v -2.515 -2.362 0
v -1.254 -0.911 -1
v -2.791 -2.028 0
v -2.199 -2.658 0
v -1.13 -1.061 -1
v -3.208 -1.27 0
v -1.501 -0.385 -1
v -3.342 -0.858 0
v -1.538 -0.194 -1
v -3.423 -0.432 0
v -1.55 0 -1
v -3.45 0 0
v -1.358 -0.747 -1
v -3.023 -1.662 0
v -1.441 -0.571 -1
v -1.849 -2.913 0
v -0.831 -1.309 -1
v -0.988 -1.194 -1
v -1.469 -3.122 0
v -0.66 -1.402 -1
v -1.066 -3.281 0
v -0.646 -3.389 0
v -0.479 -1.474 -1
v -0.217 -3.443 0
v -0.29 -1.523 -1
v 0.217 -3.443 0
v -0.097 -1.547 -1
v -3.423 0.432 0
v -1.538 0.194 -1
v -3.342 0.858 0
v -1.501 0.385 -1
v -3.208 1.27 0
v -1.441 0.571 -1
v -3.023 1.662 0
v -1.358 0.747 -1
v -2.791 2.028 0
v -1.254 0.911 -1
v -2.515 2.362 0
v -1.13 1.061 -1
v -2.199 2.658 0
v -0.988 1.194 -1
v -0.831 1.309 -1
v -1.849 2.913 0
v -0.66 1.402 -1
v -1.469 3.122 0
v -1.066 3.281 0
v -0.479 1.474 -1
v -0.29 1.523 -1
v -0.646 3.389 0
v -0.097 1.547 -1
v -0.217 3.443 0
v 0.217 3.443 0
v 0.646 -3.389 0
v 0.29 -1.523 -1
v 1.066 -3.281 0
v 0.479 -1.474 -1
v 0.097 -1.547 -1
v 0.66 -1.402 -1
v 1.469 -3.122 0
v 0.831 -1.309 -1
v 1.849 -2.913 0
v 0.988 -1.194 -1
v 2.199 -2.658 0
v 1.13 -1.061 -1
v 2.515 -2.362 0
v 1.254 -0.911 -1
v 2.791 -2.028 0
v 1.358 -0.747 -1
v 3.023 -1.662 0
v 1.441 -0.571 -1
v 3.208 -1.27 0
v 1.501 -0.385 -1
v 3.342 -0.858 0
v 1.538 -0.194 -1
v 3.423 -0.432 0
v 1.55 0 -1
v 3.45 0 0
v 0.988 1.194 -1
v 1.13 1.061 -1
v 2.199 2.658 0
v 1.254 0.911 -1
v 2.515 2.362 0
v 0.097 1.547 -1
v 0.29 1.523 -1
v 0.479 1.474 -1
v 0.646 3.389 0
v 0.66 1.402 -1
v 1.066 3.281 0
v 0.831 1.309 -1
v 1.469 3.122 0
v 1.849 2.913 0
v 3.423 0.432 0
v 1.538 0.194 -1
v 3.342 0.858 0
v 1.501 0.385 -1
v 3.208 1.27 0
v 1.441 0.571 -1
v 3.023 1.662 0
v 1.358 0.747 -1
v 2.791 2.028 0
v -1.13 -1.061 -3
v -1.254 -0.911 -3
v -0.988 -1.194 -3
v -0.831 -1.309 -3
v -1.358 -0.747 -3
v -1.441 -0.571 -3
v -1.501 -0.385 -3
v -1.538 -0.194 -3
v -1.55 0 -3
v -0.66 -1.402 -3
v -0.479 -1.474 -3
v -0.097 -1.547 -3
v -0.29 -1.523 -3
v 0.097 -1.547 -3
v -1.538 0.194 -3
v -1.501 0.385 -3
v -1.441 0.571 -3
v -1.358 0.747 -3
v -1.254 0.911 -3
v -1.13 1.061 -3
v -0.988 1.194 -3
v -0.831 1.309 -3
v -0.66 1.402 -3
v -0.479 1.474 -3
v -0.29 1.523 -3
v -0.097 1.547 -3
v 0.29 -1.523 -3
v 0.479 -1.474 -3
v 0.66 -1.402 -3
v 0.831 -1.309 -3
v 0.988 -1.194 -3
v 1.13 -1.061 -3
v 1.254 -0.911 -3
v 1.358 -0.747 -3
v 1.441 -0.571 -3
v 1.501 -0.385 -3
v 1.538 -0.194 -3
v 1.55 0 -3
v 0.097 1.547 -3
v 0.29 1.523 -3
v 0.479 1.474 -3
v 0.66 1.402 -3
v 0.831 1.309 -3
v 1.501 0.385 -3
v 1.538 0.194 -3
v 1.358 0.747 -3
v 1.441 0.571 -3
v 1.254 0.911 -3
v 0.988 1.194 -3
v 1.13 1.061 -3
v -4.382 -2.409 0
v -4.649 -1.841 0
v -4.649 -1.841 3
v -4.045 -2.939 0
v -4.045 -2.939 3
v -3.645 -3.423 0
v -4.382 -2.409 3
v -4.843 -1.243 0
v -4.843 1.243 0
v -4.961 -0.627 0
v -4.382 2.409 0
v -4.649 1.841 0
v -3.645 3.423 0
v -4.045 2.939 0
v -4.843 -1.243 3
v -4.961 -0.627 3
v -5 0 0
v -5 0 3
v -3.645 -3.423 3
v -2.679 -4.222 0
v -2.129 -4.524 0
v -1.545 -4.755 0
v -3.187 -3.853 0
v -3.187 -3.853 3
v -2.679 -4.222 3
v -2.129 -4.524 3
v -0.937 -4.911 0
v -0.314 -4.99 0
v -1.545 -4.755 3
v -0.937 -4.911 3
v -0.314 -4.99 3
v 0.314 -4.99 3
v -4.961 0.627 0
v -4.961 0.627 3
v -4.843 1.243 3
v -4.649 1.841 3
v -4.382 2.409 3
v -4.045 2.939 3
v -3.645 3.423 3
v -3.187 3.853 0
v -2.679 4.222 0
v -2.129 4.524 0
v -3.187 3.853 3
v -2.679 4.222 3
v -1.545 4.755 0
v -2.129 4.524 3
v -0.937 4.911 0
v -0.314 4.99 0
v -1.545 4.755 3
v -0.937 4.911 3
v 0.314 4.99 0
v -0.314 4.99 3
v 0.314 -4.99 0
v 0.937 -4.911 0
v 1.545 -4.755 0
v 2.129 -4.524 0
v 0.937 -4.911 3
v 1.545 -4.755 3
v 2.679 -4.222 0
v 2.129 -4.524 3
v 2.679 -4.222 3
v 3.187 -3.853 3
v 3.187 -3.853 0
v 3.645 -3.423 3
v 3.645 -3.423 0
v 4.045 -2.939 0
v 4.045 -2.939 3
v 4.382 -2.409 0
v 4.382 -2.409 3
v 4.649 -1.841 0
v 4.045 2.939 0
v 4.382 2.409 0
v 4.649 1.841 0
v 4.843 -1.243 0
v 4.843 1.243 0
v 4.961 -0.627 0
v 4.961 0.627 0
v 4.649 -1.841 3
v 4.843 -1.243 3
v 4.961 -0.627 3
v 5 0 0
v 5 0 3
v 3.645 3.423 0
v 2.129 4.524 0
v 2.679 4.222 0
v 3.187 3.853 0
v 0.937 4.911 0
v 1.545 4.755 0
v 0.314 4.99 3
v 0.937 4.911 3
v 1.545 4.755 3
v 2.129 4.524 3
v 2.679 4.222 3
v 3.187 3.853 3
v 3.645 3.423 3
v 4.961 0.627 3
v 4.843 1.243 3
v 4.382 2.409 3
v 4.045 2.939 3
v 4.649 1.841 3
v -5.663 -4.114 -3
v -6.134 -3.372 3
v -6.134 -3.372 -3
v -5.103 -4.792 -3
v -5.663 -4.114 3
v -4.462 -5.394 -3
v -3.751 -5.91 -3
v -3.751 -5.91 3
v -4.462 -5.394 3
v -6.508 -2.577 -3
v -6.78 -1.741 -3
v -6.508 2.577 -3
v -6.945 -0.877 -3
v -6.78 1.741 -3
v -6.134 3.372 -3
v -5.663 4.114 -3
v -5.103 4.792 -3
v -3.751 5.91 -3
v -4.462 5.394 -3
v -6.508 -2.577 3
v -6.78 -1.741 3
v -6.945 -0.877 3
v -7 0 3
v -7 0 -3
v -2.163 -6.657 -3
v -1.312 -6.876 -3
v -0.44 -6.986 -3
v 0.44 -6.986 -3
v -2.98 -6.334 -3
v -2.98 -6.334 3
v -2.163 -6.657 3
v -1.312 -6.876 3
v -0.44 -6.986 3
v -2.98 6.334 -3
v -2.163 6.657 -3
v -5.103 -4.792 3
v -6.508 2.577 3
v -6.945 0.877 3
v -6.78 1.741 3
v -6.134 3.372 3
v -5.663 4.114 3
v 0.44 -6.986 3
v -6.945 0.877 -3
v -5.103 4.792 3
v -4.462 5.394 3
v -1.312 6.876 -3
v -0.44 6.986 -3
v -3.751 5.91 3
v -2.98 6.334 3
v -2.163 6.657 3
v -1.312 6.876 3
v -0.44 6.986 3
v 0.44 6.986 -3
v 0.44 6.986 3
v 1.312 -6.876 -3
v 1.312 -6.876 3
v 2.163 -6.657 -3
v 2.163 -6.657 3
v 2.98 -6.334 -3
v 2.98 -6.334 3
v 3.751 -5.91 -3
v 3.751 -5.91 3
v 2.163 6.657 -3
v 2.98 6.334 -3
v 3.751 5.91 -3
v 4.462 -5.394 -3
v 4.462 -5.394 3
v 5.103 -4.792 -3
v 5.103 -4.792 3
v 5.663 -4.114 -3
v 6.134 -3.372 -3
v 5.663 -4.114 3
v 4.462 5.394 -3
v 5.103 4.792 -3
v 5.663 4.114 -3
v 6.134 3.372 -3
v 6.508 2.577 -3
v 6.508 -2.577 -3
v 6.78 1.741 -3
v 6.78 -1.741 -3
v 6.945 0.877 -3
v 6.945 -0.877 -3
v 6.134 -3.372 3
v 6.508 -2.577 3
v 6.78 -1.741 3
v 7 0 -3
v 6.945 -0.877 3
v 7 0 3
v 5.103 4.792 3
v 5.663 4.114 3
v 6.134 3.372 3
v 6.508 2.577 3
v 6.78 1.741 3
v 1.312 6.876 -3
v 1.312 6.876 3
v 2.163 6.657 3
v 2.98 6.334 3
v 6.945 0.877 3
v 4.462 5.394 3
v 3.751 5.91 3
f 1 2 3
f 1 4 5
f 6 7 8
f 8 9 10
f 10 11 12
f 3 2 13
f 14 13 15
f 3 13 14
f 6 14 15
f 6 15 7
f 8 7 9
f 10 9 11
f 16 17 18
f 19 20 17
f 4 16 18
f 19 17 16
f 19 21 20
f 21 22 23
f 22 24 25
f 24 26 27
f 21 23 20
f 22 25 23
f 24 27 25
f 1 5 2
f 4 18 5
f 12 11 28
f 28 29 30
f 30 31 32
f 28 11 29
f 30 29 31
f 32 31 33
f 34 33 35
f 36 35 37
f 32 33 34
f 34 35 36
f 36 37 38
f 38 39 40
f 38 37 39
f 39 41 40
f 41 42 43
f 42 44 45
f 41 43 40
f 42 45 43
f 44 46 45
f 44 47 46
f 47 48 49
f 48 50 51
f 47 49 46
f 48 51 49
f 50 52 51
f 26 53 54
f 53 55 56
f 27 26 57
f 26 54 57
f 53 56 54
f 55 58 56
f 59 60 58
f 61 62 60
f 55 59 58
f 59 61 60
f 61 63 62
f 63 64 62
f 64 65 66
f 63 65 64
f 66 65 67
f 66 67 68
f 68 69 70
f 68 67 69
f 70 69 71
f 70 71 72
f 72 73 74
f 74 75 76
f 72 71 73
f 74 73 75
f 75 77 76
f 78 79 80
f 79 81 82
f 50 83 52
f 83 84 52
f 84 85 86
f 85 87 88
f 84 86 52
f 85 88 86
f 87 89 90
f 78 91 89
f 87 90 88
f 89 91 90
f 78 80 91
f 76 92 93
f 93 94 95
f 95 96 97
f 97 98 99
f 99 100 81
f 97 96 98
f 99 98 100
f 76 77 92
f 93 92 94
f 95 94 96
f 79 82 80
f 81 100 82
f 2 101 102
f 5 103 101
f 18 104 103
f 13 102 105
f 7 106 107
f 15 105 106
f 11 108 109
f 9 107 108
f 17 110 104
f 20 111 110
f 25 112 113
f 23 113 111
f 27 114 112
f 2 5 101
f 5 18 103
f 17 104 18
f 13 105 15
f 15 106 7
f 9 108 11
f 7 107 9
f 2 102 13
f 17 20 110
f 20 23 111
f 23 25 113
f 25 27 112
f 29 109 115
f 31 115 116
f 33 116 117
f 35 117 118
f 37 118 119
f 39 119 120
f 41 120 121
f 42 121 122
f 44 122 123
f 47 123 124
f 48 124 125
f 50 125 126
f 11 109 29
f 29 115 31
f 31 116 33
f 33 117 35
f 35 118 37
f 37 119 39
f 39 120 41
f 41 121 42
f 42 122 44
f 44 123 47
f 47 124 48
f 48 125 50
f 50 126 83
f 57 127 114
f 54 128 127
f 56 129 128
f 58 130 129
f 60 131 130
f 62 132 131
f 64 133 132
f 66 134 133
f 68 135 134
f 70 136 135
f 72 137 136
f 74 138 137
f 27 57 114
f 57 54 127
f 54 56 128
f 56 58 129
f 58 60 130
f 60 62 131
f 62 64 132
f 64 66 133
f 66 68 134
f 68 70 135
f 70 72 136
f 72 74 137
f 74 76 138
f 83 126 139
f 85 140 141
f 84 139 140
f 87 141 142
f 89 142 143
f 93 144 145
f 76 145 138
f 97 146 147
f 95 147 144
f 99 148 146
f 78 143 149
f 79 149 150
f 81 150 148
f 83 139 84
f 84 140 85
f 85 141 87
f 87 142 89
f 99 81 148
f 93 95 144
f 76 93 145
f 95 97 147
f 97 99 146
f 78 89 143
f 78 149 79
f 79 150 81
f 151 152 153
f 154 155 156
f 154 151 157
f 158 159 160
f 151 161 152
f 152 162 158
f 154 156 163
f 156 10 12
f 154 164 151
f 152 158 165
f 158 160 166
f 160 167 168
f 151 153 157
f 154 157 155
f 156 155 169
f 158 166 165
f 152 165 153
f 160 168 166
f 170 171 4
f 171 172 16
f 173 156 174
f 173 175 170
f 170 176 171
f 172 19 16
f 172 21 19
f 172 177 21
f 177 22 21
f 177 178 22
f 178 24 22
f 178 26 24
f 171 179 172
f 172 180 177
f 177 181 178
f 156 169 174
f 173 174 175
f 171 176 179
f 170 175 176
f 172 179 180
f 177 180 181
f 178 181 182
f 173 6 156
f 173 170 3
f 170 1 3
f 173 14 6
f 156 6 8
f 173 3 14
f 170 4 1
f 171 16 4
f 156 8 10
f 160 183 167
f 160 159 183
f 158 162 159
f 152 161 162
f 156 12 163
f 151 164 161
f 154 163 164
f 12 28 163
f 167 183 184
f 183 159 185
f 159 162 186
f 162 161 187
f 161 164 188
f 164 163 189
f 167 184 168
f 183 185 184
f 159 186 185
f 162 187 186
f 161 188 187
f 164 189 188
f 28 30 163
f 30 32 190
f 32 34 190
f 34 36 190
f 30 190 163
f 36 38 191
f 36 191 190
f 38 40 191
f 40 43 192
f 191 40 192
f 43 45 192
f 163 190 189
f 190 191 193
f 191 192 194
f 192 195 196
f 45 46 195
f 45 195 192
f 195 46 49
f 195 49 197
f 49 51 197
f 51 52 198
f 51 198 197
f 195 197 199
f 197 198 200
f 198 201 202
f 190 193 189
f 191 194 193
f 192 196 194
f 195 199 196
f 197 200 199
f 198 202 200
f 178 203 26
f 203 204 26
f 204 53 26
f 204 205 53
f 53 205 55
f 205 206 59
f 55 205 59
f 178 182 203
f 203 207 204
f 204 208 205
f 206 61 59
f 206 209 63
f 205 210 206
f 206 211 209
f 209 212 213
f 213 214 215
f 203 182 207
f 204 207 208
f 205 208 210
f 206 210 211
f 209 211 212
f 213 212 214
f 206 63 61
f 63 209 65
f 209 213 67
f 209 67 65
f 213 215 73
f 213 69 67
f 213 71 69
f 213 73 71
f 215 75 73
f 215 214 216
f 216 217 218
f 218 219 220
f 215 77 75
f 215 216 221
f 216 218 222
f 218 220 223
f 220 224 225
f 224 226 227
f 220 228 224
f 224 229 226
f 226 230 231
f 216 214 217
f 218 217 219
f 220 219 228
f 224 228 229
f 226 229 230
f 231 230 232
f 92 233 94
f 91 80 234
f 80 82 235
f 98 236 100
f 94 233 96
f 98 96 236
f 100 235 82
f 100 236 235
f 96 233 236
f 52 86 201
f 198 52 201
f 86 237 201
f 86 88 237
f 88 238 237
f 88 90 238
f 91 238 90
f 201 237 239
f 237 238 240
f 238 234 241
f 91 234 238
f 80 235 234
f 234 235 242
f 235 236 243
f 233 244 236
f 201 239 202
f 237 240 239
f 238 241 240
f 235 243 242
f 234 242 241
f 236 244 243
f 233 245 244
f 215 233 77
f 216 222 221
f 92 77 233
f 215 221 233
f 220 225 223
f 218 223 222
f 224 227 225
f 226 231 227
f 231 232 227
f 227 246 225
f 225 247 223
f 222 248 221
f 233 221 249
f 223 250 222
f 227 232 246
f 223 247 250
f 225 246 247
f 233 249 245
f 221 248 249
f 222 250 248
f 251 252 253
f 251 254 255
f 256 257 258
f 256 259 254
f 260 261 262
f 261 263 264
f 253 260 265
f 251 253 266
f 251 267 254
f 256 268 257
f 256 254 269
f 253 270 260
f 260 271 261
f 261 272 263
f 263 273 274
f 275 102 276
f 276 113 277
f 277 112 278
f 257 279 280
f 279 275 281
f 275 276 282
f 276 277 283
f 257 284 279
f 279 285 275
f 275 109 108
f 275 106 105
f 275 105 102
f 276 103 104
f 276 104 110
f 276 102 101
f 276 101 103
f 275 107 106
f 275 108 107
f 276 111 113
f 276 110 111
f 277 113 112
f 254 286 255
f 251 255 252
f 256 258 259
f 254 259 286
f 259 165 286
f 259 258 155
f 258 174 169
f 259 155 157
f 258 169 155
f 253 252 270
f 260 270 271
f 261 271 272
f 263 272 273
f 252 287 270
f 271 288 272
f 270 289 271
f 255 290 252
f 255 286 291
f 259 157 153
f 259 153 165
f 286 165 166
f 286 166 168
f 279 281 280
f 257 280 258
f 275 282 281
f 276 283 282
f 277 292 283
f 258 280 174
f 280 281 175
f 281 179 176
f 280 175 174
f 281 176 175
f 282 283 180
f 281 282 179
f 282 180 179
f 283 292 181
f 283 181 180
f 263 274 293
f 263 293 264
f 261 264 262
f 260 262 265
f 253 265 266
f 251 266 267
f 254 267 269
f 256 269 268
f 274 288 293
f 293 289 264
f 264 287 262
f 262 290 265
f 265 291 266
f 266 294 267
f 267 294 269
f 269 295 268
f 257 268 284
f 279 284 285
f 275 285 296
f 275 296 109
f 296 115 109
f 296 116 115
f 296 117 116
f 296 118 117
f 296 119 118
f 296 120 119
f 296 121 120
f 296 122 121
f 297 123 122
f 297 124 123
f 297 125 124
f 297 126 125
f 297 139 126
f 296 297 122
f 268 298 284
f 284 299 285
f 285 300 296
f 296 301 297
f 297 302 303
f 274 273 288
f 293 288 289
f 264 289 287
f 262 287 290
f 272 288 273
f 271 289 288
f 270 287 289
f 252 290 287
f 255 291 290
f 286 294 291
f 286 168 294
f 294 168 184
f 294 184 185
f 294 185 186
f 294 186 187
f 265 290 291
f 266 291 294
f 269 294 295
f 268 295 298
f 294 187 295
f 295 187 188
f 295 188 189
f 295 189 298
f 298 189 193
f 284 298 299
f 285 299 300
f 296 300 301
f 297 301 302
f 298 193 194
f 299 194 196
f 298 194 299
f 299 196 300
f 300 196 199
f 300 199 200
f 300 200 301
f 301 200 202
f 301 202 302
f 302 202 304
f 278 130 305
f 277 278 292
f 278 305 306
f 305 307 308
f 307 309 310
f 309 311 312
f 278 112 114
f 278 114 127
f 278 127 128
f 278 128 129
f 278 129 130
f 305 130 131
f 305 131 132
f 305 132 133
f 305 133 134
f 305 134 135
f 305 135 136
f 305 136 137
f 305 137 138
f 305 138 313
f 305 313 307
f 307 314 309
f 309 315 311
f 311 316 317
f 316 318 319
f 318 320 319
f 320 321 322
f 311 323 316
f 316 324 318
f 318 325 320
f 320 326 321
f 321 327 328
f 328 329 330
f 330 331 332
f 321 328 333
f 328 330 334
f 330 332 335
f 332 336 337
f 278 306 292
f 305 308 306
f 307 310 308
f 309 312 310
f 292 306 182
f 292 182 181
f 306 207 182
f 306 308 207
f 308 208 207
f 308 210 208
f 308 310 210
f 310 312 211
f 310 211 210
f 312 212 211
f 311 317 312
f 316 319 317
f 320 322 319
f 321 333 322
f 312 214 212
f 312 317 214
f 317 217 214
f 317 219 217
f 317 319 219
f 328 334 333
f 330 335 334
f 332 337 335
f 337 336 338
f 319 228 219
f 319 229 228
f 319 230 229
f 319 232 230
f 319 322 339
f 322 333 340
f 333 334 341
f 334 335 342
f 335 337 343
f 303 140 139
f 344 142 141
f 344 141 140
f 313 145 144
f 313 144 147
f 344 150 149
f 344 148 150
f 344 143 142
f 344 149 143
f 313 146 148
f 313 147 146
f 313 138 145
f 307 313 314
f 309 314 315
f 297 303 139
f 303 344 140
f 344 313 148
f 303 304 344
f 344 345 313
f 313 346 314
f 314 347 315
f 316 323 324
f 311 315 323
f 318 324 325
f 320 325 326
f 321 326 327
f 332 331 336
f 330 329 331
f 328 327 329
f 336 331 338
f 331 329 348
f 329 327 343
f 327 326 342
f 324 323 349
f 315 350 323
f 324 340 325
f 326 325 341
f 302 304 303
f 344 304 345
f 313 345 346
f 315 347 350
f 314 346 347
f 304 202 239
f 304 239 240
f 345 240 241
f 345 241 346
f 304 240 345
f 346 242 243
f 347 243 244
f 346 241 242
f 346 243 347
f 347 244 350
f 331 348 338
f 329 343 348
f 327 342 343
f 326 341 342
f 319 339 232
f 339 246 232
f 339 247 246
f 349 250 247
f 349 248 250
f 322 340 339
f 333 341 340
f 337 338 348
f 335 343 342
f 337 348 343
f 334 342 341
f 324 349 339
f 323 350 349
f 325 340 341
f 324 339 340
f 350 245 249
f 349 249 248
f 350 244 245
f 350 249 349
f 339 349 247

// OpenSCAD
$fn = 50;

difference() {
	union() {
		translate(v = [0, 0, -3.0]) {
			cylinder(h = 6, r = 7.0);
		}
	}
	union() {
		translate(v = [0, 0, 0]) {
			rotate(a = [0, 0, 0]) {
				difference() {
					union() {
						translate(v = [0, 0, -6.0]) {
							cylinder(h = 6, r = 1.25);
						}
						translate(v = [0, 0, -1.0]) {
							cylinder(h = 1.0, r1 = 1.55, r2 = 3.45);
						}
						translate(v = [0, 0, -6.0]) {
							cylinder(h = 6, r = 1.55);
						}
						translate(v = [0, 0, -6.0]) {
							cylinder(h = 6, r = 1.25);
						}
					}
					union();
				}
			}
		}
		#cylinder(h = 3, r = 5.0);
	}
}
